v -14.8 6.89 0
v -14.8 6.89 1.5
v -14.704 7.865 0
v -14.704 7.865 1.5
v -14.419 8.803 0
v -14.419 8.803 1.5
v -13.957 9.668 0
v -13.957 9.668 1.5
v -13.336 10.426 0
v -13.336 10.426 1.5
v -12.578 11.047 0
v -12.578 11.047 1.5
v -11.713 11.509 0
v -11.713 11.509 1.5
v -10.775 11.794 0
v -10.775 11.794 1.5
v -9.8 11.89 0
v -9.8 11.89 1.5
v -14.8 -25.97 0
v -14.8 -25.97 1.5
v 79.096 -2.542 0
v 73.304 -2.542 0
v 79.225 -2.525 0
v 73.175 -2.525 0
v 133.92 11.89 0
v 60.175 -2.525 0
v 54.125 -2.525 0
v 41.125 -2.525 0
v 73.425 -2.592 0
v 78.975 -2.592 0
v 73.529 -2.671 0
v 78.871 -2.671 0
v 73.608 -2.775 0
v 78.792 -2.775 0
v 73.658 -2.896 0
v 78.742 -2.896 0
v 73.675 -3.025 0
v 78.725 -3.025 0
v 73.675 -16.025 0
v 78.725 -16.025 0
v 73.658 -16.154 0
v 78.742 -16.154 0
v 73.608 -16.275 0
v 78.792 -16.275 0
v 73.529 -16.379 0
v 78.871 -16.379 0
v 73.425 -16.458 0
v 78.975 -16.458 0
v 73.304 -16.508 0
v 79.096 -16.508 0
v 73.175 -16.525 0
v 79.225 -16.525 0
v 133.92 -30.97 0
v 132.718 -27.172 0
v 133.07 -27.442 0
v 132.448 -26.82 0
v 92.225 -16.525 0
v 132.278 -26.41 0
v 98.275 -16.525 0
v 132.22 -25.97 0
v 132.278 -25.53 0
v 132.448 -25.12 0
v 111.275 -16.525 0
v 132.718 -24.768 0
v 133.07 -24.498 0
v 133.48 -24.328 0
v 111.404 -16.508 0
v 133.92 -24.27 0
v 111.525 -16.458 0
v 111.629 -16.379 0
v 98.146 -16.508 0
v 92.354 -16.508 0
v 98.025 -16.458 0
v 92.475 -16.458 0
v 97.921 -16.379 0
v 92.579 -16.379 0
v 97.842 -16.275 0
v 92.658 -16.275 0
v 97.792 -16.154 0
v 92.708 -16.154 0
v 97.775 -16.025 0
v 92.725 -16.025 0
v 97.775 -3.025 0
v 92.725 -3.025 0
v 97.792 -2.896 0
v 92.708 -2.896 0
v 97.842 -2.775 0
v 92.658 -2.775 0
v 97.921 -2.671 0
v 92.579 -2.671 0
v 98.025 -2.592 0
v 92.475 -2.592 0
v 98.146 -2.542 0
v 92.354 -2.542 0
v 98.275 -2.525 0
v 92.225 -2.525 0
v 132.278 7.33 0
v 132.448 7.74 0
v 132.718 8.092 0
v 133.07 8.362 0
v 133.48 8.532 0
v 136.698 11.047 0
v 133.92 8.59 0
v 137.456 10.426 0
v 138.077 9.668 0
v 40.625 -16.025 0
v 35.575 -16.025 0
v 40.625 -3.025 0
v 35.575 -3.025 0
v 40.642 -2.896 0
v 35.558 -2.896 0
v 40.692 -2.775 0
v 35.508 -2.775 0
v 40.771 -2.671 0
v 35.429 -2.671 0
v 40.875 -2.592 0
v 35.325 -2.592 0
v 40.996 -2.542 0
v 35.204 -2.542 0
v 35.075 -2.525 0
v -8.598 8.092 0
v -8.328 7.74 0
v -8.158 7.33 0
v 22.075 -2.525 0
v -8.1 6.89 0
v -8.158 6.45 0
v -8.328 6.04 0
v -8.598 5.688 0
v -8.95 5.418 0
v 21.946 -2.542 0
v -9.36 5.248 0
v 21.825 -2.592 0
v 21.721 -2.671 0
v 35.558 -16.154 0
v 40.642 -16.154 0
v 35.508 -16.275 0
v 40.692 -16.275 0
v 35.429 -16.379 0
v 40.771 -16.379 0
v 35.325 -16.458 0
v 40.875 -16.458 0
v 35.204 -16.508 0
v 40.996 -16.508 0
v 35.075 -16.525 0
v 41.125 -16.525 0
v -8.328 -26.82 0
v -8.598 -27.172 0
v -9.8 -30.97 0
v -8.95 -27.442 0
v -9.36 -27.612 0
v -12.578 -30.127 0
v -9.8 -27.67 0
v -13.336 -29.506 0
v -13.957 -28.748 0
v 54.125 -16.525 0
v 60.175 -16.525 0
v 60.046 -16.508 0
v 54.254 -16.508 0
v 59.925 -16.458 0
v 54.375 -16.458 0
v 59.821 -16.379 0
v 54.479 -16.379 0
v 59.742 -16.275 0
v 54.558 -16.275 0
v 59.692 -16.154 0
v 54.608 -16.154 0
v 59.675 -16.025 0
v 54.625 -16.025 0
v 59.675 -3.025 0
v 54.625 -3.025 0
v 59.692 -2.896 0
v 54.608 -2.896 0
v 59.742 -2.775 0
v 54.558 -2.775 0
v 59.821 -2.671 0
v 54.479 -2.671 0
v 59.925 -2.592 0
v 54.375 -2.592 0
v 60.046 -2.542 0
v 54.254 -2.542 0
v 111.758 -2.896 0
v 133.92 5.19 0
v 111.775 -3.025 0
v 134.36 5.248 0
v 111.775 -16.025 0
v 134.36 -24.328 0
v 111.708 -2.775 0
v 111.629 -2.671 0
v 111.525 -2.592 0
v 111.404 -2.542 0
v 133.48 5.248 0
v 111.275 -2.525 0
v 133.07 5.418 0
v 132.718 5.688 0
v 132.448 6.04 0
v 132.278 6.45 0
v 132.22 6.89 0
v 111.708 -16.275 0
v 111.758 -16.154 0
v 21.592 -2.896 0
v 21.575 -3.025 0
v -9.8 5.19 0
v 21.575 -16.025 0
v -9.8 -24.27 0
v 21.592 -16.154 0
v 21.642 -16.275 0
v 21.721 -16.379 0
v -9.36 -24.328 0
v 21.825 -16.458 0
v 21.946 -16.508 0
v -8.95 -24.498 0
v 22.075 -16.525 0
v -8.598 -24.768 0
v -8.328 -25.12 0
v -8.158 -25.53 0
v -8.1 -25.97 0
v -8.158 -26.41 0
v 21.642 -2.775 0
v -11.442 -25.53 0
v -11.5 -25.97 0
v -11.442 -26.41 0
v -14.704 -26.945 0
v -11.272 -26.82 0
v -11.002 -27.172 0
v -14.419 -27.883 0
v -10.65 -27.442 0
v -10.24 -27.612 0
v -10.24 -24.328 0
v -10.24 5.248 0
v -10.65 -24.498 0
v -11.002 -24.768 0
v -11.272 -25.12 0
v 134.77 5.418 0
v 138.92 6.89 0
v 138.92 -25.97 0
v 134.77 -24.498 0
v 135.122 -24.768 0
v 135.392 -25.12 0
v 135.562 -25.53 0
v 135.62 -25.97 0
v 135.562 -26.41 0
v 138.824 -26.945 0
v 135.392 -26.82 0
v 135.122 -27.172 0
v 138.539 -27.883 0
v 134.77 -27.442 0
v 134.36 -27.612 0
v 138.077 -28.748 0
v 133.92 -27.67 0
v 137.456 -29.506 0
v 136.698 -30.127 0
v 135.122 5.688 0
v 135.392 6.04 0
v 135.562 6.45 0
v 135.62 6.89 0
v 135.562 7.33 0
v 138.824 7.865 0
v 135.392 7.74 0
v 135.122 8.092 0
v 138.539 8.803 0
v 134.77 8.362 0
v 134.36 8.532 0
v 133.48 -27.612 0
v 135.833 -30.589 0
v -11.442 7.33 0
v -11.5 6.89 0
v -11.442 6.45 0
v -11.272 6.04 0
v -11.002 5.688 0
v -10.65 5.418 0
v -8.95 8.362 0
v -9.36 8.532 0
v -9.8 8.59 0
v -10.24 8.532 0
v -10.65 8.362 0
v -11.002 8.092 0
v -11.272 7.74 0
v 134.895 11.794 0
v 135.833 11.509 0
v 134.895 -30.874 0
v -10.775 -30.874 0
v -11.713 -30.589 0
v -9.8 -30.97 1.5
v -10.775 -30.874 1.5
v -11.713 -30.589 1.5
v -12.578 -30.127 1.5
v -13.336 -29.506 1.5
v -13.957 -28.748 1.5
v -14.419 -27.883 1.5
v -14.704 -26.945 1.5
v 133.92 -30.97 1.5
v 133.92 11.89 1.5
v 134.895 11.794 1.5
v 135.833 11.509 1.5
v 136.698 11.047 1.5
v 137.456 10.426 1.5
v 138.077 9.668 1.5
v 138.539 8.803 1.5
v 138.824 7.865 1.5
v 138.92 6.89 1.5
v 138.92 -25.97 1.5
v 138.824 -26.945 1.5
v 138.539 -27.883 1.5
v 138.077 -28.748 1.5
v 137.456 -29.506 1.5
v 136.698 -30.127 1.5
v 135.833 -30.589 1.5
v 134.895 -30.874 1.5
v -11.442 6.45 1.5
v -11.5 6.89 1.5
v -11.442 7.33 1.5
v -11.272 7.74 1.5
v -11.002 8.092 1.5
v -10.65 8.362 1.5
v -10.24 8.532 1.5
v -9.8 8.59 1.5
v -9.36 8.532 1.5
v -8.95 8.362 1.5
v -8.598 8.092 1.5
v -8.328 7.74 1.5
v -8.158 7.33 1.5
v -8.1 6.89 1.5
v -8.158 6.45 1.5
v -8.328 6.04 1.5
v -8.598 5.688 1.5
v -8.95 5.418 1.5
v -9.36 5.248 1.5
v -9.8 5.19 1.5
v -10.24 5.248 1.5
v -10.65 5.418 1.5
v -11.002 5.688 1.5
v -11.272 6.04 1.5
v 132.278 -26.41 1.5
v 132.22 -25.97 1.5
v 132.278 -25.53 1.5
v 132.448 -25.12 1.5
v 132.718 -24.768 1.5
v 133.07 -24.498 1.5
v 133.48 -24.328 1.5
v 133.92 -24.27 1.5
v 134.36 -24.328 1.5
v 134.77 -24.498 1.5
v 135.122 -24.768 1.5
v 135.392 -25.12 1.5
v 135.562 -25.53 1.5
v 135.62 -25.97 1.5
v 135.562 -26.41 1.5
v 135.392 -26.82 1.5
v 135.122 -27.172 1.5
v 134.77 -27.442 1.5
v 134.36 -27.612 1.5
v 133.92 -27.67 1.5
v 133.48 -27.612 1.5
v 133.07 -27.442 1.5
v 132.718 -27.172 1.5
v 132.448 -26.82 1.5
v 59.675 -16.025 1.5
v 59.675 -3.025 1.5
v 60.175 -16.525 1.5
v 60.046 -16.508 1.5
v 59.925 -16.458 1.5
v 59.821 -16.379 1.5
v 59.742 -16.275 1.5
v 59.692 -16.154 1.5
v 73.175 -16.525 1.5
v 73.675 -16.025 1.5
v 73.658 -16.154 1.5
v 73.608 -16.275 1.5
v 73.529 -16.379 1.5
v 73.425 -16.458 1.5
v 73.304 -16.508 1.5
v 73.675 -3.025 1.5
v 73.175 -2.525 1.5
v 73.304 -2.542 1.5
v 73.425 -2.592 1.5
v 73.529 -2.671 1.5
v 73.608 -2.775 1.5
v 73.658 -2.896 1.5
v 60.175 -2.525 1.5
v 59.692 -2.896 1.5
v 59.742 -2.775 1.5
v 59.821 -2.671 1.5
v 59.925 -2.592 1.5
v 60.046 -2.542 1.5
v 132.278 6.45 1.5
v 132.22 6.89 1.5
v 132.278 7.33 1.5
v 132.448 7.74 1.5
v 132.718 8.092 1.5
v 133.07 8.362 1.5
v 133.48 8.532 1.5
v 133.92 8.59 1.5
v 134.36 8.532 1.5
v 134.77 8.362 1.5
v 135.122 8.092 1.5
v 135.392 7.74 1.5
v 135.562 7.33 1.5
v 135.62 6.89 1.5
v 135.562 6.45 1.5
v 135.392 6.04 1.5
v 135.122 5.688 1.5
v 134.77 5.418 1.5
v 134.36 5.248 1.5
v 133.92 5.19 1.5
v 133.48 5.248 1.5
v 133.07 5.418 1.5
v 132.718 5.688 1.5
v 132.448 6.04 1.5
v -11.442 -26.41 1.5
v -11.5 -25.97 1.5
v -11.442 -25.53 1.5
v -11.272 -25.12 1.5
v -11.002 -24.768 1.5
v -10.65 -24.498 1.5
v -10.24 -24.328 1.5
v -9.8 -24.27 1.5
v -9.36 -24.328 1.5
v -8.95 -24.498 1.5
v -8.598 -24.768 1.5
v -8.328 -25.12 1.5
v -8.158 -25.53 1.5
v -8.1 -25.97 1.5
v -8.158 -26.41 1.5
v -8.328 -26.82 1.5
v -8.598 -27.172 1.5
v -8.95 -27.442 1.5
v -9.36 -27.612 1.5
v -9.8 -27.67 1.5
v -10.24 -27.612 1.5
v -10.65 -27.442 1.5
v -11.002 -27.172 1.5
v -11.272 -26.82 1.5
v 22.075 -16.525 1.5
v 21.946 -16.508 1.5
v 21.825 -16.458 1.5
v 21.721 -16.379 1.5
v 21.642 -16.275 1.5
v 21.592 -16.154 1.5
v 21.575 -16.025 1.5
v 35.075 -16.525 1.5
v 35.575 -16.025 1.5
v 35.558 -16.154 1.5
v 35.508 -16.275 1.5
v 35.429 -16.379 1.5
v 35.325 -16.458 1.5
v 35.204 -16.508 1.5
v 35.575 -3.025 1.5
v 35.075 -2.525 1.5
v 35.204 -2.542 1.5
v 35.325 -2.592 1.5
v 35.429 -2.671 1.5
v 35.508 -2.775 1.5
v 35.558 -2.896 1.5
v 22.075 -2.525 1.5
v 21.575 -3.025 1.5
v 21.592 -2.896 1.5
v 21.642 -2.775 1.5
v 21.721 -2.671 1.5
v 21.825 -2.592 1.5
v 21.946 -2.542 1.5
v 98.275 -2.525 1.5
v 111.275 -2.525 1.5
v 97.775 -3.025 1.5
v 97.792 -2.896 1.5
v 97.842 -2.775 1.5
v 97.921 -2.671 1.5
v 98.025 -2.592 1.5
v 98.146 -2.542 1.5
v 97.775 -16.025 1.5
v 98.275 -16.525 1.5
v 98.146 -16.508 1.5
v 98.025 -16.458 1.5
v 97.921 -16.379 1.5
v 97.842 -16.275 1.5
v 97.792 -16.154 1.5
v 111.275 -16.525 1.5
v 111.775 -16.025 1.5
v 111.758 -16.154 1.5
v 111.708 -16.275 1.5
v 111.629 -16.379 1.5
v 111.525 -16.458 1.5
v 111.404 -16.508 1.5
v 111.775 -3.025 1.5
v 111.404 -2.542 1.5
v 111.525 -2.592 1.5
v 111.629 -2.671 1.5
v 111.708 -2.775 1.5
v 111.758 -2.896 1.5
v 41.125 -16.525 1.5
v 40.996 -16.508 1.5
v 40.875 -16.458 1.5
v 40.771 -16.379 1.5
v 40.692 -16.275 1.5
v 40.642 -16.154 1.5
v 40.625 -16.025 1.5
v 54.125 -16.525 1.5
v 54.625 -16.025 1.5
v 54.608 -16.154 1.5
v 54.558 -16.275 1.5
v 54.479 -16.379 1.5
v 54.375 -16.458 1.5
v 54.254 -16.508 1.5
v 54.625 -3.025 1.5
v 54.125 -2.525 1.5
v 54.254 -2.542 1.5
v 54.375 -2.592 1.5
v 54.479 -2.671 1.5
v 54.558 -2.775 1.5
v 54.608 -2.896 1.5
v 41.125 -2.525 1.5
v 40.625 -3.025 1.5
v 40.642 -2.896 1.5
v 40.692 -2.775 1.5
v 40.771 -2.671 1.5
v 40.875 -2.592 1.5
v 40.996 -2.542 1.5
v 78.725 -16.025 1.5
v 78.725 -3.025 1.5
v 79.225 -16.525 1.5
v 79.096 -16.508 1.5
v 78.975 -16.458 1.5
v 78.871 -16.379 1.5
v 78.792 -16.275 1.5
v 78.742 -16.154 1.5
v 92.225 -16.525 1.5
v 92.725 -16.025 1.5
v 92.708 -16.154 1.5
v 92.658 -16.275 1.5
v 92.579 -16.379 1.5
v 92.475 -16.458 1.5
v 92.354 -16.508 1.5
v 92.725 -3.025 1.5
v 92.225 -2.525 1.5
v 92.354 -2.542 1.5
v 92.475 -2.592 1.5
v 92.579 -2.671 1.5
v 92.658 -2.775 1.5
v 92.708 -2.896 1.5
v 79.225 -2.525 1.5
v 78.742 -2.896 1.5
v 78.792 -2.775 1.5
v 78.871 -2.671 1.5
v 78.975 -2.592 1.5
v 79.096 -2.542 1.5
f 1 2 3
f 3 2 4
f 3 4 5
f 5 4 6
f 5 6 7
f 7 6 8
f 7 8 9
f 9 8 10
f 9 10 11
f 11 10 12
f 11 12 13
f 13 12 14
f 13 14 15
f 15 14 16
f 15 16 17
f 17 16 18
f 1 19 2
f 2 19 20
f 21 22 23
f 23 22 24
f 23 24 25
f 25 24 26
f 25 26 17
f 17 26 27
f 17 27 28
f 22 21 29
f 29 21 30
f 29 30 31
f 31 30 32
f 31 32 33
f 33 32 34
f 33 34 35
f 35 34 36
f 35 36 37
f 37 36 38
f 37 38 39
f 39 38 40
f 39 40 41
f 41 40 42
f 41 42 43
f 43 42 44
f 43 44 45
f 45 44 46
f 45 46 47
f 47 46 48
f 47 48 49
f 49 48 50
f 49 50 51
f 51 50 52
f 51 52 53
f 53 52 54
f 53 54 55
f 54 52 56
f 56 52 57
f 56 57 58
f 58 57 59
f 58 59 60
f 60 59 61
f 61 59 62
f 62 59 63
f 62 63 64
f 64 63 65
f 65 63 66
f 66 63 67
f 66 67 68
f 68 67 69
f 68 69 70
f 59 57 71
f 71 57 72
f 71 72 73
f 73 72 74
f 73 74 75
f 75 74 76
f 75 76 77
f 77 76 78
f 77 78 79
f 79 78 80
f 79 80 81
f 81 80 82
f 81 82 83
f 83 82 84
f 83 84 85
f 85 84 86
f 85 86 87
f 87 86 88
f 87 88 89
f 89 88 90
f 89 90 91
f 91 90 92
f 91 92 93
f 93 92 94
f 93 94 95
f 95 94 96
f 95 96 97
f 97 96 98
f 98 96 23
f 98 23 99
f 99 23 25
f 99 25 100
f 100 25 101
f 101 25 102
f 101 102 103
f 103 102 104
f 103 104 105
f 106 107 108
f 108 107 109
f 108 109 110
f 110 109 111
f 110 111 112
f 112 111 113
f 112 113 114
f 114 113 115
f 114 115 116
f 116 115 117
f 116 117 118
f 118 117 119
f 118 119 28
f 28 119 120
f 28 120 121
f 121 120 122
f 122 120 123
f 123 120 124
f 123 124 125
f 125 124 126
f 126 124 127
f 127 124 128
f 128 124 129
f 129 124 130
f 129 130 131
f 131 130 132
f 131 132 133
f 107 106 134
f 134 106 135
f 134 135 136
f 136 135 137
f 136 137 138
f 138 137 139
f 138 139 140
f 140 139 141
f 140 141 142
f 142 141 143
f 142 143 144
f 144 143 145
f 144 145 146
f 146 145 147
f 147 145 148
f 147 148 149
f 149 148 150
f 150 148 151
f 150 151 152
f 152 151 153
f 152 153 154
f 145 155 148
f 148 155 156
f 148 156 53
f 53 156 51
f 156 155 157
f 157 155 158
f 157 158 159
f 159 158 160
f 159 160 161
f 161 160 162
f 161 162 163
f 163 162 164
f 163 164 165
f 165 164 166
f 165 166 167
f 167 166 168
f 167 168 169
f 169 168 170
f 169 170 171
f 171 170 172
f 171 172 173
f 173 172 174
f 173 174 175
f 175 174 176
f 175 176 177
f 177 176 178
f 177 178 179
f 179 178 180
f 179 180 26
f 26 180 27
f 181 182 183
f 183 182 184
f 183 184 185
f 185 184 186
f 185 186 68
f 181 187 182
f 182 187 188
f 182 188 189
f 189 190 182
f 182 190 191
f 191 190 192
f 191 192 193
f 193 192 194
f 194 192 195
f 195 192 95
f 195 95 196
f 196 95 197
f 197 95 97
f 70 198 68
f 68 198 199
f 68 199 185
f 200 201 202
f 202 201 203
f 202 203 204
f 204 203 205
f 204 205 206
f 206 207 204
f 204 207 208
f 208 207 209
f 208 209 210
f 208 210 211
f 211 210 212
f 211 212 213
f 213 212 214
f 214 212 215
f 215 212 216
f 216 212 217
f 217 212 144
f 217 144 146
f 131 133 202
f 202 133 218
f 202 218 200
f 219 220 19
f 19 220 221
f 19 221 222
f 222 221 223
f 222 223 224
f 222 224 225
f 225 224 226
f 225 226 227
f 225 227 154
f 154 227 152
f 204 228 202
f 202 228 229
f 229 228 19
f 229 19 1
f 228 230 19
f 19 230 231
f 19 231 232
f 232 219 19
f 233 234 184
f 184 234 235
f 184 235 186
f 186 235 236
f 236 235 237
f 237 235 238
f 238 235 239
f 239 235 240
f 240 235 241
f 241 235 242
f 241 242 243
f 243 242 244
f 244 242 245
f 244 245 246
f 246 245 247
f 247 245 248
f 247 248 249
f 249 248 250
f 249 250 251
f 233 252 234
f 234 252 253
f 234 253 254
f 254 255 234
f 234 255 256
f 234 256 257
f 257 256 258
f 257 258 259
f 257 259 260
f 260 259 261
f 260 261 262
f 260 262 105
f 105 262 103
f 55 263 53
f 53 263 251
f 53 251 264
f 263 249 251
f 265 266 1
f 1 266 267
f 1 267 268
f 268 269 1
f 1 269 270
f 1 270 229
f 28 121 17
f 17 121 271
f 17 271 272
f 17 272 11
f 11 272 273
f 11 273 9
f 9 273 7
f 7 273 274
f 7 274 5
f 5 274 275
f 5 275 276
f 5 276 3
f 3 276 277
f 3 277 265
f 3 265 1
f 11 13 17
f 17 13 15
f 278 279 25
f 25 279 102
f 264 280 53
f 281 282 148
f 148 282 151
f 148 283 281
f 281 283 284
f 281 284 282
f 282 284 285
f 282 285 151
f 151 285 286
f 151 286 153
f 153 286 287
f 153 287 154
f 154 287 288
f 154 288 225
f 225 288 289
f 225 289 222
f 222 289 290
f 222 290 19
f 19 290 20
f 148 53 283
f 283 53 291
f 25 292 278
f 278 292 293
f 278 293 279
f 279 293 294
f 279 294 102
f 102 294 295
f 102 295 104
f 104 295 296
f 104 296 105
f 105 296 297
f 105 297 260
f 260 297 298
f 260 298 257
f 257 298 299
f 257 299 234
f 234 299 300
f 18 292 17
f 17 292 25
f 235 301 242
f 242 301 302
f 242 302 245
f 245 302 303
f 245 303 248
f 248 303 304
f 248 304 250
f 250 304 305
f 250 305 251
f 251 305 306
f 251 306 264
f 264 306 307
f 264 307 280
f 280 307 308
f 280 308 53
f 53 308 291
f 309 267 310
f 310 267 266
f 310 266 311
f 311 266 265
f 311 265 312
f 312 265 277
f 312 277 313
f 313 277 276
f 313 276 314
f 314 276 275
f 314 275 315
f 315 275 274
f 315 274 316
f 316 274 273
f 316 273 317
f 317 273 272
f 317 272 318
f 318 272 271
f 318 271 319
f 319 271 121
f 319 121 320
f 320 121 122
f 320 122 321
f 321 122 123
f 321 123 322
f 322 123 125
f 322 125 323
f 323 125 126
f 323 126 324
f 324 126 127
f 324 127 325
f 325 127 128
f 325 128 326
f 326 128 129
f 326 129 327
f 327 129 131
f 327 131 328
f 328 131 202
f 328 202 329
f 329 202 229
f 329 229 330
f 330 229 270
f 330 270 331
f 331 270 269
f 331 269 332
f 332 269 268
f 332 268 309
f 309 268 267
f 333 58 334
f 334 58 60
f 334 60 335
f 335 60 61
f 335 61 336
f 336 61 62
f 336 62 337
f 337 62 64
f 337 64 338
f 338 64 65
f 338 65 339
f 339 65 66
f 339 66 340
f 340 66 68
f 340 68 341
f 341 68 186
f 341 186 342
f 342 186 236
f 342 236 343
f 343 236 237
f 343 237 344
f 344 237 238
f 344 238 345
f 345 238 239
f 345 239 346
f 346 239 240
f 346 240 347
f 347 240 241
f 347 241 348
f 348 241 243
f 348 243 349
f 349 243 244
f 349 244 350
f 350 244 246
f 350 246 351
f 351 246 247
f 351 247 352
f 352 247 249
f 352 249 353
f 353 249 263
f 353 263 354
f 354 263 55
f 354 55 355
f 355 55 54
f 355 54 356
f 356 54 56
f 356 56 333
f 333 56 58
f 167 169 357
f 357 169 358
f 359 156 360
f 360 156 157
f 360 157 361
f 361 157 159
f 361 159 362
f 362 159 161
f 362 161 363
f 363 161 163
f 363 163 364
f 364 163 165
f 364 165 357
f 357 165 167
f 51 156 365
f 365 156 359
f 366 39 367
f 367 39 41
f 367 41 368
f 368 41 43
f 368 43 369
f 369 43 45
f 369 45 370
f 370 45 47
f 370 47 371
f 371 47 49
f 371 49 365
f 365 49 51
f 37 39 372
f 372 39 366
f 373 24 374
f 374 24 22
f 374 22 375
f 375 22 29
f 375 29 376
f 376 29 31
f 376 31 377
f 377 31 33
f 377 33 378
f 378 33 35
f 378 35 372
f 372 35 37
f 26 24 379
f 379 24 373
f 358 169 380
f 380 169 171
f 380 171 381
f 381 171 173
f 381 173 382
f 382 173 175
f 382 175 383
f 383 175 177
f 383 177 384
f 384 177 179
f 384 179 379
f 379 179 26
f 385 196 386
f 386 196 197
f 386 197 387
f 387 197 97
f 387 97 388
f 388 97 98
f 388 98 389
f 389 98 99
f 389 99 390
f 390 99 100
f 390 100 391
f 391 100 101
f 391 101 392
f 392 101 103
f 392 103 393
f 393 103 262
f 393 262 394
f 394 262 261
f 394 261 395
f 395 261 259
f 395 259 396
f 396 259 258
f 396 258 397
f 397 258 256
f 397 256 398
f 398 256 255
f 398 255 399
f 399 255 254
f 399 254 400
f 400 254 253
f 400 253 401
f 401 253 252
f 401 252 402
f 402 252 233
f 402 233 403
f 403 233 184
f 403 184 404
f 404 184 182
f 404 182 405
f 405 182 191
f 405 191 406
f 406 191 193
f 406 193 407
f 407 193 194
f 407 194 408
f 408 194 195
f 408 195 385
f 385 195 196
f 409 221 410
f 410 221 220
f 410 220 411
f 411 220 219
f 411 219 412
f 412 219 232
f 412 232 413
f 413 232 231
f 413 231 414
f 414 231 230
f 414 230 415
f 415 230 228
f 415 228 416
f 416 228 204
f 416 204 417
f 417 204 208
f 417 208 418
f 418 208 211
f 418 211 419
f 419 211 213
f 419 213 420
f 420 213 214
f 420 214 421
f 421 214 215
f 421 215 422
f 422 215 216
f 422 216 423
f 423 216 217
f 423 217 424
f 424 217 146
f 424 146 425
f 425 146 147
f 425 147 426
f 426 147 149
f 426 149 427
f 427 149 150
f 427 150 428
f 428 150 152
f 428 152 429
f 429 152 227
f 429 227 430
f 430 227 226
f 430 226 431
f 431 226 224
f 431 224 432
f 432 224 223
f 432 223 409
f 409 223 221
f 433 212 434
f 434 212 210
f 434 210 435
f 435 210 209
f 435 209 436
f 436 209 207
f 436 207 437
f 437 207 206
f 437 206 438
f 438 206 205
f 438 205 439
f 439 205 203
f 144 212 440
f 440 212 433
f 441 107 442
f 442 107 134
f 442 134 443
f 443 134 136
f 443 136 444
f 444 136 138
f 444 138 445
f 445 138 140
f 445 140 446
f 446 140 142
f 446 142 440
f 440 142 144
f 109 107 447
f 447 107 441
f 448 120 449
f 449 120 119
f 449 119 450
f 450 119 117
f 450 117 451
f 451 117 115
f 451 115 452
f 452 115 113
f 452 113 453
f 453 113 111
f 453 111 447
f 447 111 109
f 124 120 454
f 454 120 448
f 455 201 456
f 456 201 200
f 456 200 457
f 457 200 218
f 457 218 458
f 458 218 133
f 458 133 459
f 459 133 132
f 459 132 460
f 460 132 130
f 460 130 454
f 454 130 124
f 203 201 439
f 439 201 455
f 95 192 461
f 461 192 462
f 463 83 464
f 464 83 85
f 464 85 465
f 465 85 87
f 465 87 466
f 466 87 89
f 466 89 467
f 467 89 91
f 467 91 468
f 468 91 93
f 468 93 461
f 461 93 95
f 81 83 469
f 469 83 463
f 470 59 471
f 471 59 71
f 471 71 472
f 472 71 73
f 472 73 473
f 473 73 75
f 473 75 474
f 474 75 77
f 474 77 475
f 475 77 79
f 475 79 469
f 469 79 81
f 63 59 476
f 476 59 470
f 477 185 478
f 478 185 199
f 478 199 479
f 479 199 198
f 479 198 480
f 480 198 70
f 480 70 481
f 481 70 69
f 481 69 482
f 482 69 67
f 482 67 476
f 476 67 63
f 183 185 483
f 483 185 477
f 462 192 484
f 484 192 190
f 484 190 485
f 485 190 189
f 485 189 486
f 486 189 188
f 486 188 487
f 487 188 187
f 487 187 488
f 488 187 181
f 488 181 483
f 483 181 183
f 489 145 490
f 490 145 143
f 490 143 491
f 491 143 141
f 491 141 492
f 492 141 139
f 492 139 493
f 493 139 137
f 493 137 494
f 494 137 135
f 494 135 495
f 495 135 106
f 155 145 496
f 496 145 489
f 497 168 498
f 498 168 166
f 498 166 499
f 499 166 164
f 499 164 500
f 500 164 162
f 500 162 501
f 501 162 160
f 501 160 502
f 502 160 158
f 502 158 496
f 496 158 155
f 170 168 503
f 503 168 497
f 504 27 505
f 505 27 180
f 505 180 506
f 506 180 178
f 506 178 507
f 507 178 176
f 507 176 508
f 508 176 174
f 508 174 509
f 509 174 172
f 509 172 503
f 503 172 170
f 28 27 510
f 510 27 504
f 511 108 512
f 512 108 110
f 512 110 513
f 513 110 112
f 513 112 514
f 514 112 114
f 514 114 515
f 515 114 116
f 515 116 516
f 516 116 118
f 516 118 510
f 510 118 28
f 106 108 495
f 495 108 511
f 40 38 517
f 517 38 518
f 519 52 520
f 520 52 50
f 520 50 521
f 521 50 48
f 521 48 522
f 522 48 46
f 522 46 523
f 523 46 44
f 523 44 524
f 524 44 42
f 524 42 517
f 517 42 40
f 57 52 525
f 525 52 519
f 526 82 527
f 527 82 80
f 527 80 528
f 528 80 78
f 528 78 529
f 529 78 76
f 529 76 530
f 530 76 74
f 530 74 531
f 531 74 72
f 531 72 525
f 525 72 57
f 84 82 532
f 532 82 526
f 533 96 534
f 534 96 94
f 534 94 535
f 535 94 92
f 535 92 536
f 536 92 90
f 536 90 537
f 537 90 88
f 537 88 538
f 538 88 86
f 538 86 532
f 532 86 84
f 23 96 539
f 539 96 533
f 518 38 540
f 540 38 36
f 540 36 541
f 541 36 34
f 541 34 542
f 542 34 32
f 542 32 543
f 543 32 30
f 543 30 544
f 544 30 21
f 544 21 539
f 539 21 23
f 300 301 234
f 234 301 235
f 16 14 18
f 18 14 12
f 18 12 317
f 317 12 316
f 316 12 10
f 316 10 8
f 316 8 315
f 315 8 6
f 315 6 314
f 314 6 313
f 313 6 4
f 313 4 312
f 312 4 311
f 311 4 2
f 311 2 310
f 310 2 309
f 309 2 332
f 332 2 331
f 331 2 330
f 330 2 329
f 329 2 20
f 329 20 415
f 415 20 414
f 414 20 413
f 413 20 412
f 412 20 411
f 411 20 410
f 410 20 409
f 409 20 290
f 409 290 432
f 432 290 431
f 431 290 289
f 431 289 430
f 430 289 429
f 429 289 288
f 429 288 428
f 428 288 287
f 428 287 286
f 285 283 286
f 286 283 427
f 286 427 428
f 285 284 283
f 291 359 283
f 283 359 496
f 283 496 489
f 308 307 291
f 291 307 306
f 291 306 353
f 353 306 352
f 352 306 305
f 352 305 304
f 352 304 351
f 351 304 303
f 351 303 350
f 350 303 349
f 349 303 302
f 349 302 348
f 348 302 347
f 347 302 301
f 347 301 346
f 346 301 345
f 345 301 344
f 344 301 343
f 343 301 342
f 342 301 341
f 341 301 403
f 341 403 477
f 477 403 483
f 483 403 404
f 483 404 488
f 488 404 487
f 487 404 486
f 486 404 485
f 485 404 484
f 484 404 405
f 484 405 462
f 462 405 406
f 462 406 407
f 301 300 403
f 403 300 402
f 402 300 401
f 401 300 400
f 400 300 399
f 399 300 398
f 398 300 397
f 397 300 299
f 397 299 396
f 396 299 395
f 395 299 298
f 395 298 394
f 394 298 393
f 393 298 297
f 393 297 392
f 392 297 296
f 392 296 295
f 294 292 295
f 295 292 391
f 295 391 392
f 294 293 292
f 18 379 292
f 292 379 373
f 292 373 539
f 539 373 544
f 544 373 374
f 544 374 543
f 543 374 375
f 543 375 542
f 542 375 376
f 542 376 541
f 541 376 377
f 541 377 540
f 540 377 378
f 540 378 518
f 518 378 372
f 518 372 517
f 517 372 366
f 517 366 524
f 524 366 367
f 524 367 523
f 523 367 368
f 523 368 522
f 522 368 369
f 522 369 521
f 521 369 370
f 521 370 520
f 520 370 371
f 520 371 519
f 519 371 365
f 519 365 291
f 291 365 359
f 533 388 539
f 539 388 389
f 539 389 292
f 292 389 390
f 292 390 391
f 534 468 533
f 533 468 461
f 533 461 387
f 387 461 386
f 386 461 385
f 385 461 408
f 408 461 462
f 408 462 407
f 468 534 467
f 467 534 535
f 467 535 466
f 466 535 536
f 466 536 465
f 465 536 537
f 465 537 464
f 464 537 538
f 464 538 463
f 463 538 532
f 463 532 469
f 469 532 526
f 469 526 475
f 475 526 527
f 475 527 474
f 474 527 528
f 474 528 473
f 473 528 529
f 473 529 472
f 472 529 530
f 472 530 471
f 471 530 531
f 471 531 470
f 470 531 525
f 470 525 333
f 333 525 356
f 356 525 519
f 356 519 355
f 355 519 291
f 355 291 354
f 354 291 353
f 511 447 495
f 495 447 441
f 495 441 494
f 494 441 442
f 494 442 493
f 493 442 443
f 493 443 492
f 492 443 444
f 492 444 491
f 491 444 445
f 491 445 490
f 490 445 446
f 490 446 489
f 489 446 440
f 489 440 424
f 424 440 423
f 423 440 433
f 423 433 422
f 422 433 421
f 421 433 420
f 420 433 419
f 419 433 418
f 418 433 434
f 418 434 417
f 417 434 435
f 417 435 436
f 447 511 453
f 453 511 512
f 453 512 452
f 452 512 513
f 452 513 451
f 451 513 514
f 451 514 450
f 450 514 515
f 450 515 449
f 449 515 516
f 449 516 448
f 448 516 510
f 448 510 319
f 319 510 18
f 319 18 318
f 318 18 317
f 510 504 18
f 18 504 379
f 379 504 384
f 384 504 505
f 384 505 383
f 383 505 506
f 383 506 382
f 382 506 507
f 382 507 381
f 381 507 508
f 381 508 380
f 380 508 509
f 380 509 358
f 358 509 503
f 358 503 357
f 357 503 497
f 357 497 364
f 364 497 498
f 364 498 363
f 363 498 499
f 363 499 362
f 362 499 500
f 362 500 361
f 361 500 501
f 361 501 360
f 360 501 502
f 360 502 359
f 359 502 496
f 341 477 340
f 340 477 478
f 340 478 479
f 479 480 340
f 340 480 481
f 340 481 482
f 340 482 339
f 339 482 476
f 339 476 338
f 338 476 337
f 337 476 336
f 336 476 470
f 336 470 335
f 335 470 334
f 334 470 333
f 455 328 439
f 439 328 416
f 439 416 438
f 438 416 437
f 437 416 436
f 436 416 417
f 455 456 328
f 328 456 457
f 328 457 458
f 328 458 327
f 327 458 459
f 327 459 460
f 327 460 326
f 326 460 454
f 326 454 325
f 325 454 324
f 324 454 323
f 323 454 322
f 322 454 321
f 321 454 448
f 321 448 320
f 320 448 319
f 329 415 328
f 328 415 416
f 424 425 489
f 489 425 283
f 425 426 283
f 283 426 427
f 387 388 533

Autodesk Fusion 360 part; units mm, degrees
sketch "plate-2025-06-26T05_56_28.958Z" plane through (0, 0, 0) normal (0, 0, 1) x (1, 0, 0)
  line L0 (22.075, -2.525) -> (35.075, -2.525)
  line L1 (22.075, -16.525) -> (35.075, -16.525)
  line L2 (21.575, -3.025) -> (21.575, -16.025)
  line L3 (35.575, -3.025) -> (35.575, -16.025)
  arc A0 (22.075, -2.525) -> (21.575, -3.025) centre (22.075, -3.025) ccw
  arc A1 (35.575, -3.025) -> (35.075, -2.525) centre (35.075, -3.025) ccw
  arc A2 (21.575, -16.025) -> (22.075, -16.525) centre (22.075, -16.025) ccw
  arc A3 (35.075, -16.525) -> (35.575, -16.025) centre (35.075, -16.025) ccw
  line L4 (41.125, -2.525) -> (54.125, -2.525)
  line L5 (41.125, -16.525) -> (54.125, -16.525)
  line L6 (40.625, -3.025) -> (40.625, -16.025)
  line L7 (54.625, -3.025) -> (54.625, -16.025)
  arc A4 (41.125, -2.525) -> (40.625, -3.025) centre (41.125, -3.025) ccw
  arc A5 (54.625, -3.025) -> (54.125, -2.525) centre (54.125, -3.025) ccw
  arc A6 (40.625, -16.025) -> (41.125, -16.525) centre (41.125, -16.025) ccw
  arc A7 (54.125, -16.525) -> (54.625, -16.025) centre (54.125, -16.025) ccw
  line L8 (60.175, -2.525) -> (73.175, -2.525)
  line L9 (60.175, -16.525) -> (73.175, -16.525)
  line L10 (59.675, -3.025) -> (59.675, -16.025)
  line L11 (73.675, -3.025) -> (73.675, -16.025)
  arc A8 (60.175, -2.525) -> (59.675, -3.025) centre (60.175, -3.025) ccw
  arc A9 (73.675, -3.025) -> (73.175, -2.525) centre (73.175, -3.025) ccw
  arc A10 (59.675, -16.025) -> (60.175, -16.525) centre (60.175, -16.025) ccw
  arc A11 (73.175, -16.525) -> (73.675, -16.025) centre (73.175, -16.025) ccw
  line L12 (138.92, -30.97) -> (-14.8, -30.97)
  line L13 (-14.8, -30.97) -> (-14.8, 11.89)
  line L14 (-14.8, 11.89) -> (138.92, 11.89)
  line L15 (138.92, 11.89) -> (138.92, -30.97)
  line L16 (128.92, 1.89) -> (-4.8, 1.89)
  line L17 (-4.8, 1.89) -> (-4.8, -20.97)
  line L18 (-4.8, -20.97) -> (128.92, -20.97)
  line L19 (128.92, -20.97) -> (128.92, 1.89)
  circle A12 centre (133.92, 6.89) radius 1.7
  circle A13 centre (133.92, -25.97) radius 1.7
  circle A14 centre (-9.8, -25.97) radius 1.7
  circle A15 centre (-9.8, 6.89) radius 1.7
  arc A16 (54.625, -3.025) -> (54.125, -2.525) centre (54.125, -3.025) ccw
  line L20 (21.575, -3.025) -> (21.575, -16.025)
  arc A17 (60.175, -2.525) -> (59.675, -3.025) centre (60.175, -3.025) ccw
  arc A18 (54.125, -16.525) -> (54.625, -16.025) centre (54.125, -16.025) ccw
  line L21 (40.625, -3.025) -> (40.625, -16.025)
  line L22 (35.575, -3.025) -> (35.575, -16.025)
  line L23 (59.675, -3.025) -> (59.675, -16.025)
  line L24 (22.075, -16.525) -> (35.075, -16.525)
  line L25 (41.125, -16.525) -> (54.125, -16.525)
  arc A19 (41.125, -2.525) -> (40.625, -3.025) centre (41.125, -3.025) ccw
  line L26 (60.175, -2.525) -> (73.175, -2.525)
  line L27 (54.625, -3.025) -> (54.625, -16.025)
  arc A20 (22.075, -2.525) -> (21.575, -3.025) centre (22.075, -3.025) ccw
  arc A21 (73.675, -3.025) -> (73.175, -2.525) centre (73.175, -3.025) ccw
  line L28 (73.675, -3.025) -> (73.675, -16.025)
  arc A22 (35.075, -16.525) -> (35.575, -16.025) centre (35.075, -16.025) ccw
  arc A23 (35.575, -3.025) -> (35.075, -2.525) centre (35.075, -3.025) ccw
  arc A24 (21.575, -16.025) -> (22.075, -16.525) centre (22.075, -16.025) ccw
  line L29 (60.175, -16.525) -> (73.175, -16.525)
  arc A25 (59.675, -16.025) -> (60.175, -16.525) centre (60.175, -16.025) ccw
  arc A26 (40.625, -16.025) -> (41.125, -16.525) centre (41.125, -16.025) ccw
  line L30 (41.125, -2.525) -> (54.125, -2.525)
  arc A27 (73.175, -16.525) -> (73.675, -16.025) centre (73.175, -16.025) ccw
  line L31 (22.075, -2.525) -> (35.075, -2.525)
  line L32 (79.225, -2.525) -> (92.225, -2.525)
  line L33 (98.275, -2.525) -> (111.275, -2.525)
  arc A28 (111.275, -16.525) -> (111.775, -16.025) centre (111.275, -16.025) ccw
  line L34 (111.775, -3.025) -> (111.775, -16.025)
  arc A29 (111.775, -3.025) -> (111.275, -2.525) centre (111.275, -3.025) ccw
  arc A30 (111.275, -16.525) -> (111.775, -16.025) centre (111.275, -16.025) ccw
  line L35 (79.225, -16.525) -> (92.225, -16.525)
  line L36 (98.275, -2.525) -> (111.275, -2.525)
  line L37 (98.275, -16.525) -> (111.275, -16.525)
  arc A31 (79.225, -2.525) -> (78.725, -3.025) centre (79.225, -3.025) ccw
  arc A32 (92.225, -16.525) -> (92.725, -16.025) centre (92.225, -16.025) ccw
  arc A33 (111.775, -3.025) -> (111.275, -2.525) centre (111.275, -3.025) ccw
  arc A34 (97.775, -16.025) -> (98.275, -16.525) centre (98.275, -16.025) ccw
  arc A35 (98.275, -2.525) -> (97.775, -3.025) centre (98.275, -3.025) ccw
  arc A36 (92.225, -16.525) -> (92.725, -16.025) centre (92.225, -16.025) ccw
  line L38 (111.775, -3.025) -> (111.775, -16.025)
  line L39 (97.775, -3.025) -> (97.775, -16.025)
  line L40 (98.275, -16.525) -> (111.275, -16.525)
  arc A37 (79.225, -2.525) -> (78.725, -3.025) centre (79.225, -3.025) ccw
  line L41 (92.725, -3.025) -> (92.725, -16.025)
  arc A38 (92.725, -3.025) -> (92.225, -2.525) centre (92.225, -3.025) ccw
  line L42 (78.725, -3.025) -> (78.725, -16.025)
  line L43 (97.775, -3.025) -> (97.775, -16.025)
  arc A39 (78.725, -16.025) -> (79.225, -16.525) centre (79.225, -16.025) ccw
  line L44 (92.725, -3.025) -> (92.725, -16.025)
  line L45 (79.225, -2.525) -> (92.225, -2.525)
  arc A40 (97.775, -16.025) -> (98.275, -16.525) centre (98.275, -16.025) ccw
  arc A41 (92.725, -3.025) -> (92.225, -2.525) centre (92.225, -3.025) ccw
  arc A42 (98.275, -2.525) -> (97.775, -3.025) centre (98.275, -3.025) ccw
  line L46 (78.725, -3.025) -> (78.725, -16.025)
  arc A43 (78.725, -16.025) -> (79.225, -16.525) centre (79.225, -16.025) ccw
  line L47 (79.225, -16.525) -> (92.225, -16.525)
  dimension "d1" = 153.72
  dimension "d2" = 42.86
  dimension "d9" = 10
  dimension "d11" = 5.05
  dimension "d12" = 5.05
  dimension "d13" = 3.4
  dimension "d14" = 3.4
  dimension "d15" = 3.4
  dimension "d16" = 3.4
  dimension "d17" = 5
  dimension "d18" = 5
  dimension "d19" = 5
  dimension "d20" = 5
  dimension "d21" = 5
  dimension "d22" = 5
  dimension "d23" = 5
  dimension "d24" = 5
  dimension "d29" = 10
  dimension "d30" = 10
  dimension "d31" = 10
  dimension "d32" = 26.375
  dimension "d33" = 5.05
  dimension "d34" = 5.05
  dimension "d35" = 5.05
  dimension "d36" = 5.05
extrude "Extrude1" add sketch "plate-2025-06-26T05_56_28.958Z" along normal blind 1.5 contours L12 L13 L14 L15 | L16 L17 L18 L19
fillet "Fillet1" radius 5 4 edges at (138.92, -30.97, 0.75) (138.92, 11.89, 0.75) (-14.8, -30.97, 0.75) (-14.8, 11.89, 0.75)
equation "d1 = 115.620 mm + 38.1 mm"
